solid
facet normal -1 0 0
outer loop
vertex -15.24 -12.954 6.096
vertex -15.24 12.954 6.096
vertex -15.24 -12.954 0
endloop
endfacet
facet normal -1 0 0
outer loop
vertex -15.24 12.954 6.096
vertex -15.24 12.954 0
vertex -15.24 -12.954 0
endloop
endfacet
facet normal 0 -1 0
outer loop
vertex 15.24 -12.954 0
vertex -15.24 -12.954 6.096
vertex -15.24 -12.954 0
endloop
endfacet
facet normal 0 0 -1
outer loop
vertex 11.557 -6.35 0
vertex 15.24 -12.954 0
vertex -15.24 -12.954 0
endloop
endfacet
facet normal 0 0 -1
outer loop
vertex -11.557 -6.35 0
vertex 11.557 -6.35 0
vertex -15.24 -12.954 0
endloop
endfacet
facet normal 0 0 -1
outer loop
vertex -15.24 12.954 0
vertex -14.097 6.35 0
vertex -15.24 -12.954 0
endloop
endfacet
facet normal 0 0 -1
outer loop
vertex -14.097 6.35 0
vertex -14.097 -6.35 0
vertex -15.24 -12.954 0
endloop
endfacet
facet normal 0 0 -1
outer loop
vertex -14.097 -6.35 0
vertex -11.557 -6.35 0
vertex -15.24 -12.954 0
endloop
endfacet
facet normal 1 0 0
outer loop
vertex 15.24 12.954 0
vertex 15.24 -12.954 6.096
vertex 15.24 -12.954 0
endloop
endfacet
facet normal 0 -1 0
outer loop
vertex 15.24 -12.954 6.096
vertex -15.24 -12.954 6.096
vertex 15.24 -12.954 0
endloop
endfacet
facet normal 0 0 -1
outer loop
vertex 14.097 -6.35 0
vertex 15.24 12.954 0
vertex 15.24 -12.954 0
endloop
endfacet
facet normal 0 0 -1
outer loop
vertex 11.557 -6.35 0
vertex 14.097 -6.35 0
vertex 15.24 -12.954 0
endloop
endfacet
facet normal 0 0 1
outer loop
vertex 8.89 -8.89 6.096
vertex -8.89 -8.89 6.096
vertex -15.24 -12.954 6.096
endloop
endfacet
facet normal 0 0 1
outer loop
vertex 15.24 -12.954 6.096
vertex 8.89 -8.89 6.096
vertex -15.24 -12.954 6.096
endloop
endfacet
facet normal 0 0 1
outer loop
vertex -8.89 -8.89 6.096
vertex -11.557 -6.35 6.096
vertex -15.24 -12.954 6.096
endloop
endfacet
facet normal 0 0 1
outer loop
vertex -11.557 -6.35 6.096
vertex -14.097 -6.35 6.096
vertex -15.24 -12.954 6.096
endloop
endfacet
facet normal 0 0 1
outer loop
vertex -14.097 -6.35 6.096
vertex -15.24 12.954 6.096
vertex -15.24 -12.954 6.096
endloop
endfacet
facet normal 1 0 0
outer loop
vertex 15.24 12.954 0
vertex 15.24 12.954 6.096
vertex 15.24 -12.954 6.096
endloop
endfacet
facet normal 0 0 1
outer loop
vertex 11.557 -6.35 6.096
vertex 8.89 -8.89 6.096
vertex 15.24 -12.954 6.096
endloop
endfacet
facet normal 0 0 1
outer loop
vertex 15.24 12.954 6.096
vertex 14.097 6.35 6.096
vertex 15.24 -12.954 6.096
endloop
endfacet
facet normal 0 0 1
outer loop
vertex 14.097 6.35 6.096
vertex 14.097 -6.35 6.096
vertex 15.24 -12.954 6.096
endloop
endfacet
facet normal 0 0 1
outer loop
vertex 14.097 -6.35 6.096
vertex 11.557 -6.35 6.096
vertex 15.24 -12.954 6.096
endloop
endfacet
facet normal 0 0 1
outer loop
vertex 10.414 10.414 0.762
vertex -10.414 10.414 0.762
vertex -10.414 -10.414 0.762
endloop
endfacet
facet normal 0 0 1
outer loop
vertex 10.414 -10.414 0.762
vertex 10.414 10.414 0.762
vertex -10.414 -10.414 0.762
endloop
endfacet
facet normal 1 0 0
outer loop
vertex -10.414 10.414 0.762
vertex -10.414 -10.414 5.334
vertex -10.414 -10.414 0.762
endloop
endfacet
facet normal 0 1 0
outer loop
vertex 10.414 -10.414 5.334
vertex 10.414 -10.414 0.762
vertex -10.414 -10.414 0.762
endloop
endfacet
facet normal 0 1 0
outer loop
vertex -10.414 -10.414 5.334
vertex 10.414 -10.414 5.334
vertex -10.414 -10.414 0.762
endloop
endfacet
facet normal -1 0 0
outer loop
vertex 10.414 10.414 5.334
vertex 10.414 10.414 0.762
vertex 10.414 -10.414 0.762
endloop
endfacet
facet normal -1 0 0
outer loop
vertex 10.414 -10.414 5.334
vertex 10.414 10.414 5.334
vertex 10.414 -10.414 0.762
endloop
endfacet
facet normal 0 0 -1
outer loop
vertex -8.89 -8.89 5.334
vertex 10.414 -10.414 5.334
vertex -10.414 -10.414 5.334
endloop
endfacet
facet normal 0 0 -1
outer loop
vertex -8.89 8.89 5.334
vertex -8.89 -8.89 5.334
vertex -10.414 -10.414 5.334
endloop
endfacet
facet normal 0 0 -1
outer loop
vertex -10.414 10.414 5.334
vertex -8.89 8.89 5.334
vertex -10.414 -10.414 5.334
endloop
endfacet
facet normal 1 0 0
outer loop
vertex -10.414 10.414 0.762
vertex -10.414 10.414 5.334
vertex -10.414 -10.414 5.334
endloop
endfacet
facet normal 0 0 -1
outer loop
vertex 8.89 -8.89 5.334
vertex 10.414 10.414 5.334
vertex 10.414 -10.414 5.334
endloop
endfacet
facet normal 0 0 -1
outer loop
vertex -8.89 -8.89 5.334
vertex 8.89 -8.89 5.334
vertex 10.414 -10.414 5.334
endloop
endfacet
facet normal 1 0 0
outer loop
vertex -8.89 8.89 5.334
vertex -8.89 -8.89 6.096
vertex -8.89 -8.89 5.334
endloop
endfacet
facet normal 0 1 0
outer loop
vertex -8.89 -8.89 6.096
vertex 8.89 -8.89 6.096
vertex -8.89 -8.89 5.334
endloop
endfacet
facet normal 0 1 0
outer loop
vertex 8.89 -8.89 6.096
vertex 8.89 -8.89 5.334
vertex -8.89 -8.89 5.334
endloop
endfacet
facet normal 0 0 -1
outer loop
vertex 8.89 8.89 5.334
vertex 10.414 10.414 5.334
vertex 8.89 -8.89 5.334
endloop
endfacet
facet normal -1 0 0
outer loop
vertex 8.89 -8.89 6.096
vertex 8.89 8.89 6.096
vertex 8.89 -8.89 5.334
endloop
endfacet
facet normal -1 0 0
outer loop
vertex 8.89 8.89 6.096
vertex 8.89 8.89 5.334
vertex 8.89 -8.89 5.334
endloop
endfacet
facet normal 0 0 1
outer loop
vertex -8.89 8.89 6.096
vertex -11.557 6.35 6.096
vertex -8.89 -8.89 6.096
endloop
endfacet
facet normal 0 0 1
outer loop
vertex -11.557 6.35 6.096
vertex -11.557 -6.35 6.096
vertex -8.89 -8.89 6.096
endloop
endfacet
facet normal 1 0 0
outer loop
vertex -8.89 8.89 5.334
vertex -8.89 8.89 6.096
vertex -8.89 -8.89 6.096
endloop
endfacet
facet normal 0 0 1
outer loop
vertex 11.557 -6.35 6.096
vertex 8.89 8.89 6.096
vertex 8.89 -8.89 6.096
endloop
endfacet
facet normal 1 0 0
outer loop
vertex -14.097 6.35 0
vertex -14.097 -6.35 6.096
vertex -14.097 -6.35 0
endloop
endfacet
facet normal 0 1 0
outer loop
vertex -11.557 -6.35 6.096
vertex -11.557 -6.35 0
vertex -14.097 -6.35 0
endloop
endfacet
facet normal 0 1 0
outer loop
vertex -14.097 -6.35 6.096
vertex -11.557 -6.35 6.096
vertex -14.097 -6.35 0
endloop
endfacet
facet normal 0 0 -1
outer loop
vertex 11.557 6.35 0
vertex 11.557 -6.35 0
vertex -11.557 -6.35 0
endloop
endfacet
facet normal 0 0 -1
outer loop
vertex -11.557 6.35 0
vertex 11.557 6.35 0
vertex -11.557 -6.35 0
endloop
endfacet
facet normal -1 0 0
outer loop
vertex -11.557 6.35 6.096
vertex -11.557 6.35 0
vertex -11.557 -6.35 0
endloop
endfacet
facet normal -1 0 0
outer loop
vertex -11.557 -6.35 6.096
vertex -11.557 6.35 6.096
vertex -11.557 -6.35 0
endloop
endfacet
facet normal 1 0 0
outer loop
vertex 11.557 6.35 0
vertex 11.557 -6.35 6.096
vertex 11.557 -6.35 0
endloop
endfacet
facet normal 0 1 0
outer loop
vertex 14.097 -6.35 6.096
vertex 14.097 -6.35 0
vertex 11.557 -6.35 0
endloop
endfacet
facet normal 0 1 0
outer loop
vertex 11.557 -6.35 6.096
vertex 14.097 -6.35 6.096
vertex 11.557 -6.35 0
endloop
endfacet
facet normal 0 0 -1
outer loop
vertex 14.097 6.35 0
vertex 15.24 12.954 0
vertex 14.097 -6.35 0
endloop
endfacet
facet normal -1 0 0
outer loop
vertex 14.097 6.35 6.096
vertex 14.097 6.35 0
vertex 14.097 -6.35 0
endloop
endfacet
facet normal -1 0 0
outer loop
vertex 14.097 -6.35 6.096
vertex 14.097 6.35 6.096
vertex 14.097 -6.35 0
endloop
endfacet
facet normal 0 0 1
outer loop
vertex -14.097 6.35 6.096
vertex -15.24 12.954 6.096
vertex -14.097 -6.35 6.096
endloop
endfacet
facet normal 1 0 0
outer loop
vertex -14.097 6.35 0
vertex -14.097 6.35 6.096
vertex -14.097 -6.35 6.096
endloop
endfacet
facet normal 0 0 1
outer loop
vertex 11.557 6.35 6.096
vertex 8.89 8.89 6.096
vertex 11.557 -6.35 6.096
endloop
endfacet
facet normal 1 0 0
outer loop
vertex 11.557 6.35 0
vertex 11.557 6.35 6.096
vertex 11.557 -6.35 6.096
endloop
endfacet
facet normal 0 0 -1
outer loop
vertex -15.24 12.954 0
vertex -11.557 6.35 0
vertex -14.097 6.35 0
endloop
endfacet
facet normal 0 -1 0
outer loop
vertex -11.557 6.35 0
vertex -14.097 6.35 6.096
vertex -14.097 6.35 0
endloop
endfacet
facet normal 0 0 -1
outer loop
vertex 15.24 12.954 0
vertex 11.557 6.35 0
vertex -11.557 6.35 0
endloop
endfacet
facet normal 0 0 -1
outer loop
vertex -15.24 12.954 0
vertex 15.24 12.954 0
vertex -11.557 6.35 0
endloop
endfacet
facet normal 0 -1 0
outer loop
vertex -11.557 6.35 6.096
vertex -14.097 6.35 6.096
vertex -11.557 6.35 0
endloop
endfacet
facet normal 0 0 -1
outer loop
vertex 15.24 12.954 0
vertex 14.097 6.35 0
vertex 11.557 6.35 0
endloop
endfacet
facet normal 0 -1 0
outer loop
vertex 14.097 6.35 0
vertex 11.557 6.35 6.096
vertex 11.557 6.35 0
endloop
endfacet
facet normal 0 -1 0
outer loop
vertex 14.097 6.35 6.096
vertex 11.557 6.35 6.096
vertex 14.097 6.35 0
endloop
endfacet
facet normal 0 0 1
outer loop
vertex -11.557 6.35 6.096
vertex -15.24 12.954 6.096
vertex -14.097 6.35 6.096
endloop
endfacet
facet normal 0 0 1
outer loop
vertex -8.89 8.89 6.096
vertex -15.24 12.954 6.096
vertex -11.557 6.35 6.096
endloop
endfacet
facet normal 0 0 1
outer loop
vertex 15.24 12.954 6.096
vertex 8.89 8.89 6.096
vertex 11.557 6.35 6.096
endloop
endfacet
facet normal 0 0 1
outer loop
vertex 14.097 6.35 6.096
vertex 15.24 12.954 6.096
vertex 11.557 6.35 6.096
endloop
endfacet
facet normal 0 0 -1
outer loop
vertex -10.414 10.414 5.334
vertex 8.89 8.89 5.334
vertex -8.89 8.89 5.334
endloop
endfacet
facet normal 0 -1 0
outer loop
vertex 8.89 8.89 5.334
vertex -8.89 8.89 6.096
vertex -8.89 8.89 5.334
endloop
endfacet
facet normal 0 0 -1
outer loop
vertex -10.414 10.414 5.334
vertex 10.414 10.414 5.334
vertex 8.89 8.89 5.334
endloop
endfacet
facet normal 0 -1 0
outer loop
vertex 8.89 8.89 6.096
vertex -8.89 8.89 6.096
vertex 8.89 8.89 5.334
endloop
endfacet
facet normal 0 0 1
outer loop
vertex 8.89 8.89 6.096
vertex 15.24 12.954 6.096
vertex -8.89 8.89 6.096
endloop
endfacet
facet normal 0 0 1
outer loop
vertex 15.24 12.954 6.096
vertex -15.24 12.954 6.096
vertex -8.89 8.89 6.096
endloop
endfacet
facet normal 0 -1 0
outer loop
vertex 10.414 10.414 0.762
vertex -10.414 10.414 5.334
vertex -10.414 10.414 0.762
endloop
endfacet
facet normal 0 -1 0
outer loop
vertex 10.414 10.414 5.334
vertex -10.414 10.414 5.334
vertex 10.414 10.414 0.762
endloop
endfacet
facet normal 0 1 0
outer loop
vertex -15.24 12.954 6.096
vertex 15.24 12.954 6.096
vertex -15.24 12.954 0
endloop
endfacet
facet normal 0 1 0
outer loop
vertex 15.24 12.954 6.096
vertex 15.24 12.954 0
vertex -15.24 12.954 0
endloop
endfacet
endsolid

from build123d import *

# Parameters (mm, degrees)
SKETCH1_W           = 30.48
SKETCH1_H           = 25.908
BOSS_EXTRUDE1_DEPTH = 5.334
SKETCH2_W           = 20.828
SKETCH2_H           = 20.828
CUT_EXTRUDE1_DEPTH  = 4.572
SKETCH3_W           = 30.48
SKETCH3_H           = 25.908
SKETCH3_W_2         = 17.78
SKETCH3_H_2         = 17.78
BOSS_EXTRUDE2_DEPTH = 0.762
SKETCH4_W           = 2.54
SKETCH4_H           = 12.7
CUT_EXTRUDE5_DEPTH  = 21.909924247


with BuildPart() as part:
    # Sketch1 → Boss-Extrude1 (new body)
    with BuildSketch(Plane.XY):
        Rectangle(SKETCH1_W, SKETCH1_H)
    extrude(amount=BOSS_EXTRUDE1_DEPTH)

    # Sketch2 → Cut-Extrude1 (cut)
    with BuildSketch(Plane.XY.offset(5.334)):
        Rectangle(SKETCH2_W, SKETCH2_H)
    extrude(amount=-CUT_EXTRUDE1_DEPTH, mode=Mode.SUBTRACT)

    # Sketch3 → Boss-Extrude2 (add)
    with BuildSketch(Plane.XY.offset(5.334)):
        Rectangle(SKETCH3_W, SKETCH3_H)
        Rectangle(SKETCH3_W_2, SKETCH3_H_2, mode=Mode.SUBTRACT)
    extrude(amount=BOSS_EXTRUDE2_DEPTH)

    # Sketch4 → Cut-Extrude5 (cut, through all)
    with BuildSketch(Plane.XY.offset(6.096)):
        with Locations((-12.827, 0)):
            Rectangle(SKETCH4_W, SKETCH4_H)
        with Locations((12.827, 0)):
            Rectangle(SKETCH4_W, SKETCH4_H)
    extrude(amount=-CUT_EXTRUDE5_DEPTH, mode=Mode.SUBTRACT)


solid = part.part
